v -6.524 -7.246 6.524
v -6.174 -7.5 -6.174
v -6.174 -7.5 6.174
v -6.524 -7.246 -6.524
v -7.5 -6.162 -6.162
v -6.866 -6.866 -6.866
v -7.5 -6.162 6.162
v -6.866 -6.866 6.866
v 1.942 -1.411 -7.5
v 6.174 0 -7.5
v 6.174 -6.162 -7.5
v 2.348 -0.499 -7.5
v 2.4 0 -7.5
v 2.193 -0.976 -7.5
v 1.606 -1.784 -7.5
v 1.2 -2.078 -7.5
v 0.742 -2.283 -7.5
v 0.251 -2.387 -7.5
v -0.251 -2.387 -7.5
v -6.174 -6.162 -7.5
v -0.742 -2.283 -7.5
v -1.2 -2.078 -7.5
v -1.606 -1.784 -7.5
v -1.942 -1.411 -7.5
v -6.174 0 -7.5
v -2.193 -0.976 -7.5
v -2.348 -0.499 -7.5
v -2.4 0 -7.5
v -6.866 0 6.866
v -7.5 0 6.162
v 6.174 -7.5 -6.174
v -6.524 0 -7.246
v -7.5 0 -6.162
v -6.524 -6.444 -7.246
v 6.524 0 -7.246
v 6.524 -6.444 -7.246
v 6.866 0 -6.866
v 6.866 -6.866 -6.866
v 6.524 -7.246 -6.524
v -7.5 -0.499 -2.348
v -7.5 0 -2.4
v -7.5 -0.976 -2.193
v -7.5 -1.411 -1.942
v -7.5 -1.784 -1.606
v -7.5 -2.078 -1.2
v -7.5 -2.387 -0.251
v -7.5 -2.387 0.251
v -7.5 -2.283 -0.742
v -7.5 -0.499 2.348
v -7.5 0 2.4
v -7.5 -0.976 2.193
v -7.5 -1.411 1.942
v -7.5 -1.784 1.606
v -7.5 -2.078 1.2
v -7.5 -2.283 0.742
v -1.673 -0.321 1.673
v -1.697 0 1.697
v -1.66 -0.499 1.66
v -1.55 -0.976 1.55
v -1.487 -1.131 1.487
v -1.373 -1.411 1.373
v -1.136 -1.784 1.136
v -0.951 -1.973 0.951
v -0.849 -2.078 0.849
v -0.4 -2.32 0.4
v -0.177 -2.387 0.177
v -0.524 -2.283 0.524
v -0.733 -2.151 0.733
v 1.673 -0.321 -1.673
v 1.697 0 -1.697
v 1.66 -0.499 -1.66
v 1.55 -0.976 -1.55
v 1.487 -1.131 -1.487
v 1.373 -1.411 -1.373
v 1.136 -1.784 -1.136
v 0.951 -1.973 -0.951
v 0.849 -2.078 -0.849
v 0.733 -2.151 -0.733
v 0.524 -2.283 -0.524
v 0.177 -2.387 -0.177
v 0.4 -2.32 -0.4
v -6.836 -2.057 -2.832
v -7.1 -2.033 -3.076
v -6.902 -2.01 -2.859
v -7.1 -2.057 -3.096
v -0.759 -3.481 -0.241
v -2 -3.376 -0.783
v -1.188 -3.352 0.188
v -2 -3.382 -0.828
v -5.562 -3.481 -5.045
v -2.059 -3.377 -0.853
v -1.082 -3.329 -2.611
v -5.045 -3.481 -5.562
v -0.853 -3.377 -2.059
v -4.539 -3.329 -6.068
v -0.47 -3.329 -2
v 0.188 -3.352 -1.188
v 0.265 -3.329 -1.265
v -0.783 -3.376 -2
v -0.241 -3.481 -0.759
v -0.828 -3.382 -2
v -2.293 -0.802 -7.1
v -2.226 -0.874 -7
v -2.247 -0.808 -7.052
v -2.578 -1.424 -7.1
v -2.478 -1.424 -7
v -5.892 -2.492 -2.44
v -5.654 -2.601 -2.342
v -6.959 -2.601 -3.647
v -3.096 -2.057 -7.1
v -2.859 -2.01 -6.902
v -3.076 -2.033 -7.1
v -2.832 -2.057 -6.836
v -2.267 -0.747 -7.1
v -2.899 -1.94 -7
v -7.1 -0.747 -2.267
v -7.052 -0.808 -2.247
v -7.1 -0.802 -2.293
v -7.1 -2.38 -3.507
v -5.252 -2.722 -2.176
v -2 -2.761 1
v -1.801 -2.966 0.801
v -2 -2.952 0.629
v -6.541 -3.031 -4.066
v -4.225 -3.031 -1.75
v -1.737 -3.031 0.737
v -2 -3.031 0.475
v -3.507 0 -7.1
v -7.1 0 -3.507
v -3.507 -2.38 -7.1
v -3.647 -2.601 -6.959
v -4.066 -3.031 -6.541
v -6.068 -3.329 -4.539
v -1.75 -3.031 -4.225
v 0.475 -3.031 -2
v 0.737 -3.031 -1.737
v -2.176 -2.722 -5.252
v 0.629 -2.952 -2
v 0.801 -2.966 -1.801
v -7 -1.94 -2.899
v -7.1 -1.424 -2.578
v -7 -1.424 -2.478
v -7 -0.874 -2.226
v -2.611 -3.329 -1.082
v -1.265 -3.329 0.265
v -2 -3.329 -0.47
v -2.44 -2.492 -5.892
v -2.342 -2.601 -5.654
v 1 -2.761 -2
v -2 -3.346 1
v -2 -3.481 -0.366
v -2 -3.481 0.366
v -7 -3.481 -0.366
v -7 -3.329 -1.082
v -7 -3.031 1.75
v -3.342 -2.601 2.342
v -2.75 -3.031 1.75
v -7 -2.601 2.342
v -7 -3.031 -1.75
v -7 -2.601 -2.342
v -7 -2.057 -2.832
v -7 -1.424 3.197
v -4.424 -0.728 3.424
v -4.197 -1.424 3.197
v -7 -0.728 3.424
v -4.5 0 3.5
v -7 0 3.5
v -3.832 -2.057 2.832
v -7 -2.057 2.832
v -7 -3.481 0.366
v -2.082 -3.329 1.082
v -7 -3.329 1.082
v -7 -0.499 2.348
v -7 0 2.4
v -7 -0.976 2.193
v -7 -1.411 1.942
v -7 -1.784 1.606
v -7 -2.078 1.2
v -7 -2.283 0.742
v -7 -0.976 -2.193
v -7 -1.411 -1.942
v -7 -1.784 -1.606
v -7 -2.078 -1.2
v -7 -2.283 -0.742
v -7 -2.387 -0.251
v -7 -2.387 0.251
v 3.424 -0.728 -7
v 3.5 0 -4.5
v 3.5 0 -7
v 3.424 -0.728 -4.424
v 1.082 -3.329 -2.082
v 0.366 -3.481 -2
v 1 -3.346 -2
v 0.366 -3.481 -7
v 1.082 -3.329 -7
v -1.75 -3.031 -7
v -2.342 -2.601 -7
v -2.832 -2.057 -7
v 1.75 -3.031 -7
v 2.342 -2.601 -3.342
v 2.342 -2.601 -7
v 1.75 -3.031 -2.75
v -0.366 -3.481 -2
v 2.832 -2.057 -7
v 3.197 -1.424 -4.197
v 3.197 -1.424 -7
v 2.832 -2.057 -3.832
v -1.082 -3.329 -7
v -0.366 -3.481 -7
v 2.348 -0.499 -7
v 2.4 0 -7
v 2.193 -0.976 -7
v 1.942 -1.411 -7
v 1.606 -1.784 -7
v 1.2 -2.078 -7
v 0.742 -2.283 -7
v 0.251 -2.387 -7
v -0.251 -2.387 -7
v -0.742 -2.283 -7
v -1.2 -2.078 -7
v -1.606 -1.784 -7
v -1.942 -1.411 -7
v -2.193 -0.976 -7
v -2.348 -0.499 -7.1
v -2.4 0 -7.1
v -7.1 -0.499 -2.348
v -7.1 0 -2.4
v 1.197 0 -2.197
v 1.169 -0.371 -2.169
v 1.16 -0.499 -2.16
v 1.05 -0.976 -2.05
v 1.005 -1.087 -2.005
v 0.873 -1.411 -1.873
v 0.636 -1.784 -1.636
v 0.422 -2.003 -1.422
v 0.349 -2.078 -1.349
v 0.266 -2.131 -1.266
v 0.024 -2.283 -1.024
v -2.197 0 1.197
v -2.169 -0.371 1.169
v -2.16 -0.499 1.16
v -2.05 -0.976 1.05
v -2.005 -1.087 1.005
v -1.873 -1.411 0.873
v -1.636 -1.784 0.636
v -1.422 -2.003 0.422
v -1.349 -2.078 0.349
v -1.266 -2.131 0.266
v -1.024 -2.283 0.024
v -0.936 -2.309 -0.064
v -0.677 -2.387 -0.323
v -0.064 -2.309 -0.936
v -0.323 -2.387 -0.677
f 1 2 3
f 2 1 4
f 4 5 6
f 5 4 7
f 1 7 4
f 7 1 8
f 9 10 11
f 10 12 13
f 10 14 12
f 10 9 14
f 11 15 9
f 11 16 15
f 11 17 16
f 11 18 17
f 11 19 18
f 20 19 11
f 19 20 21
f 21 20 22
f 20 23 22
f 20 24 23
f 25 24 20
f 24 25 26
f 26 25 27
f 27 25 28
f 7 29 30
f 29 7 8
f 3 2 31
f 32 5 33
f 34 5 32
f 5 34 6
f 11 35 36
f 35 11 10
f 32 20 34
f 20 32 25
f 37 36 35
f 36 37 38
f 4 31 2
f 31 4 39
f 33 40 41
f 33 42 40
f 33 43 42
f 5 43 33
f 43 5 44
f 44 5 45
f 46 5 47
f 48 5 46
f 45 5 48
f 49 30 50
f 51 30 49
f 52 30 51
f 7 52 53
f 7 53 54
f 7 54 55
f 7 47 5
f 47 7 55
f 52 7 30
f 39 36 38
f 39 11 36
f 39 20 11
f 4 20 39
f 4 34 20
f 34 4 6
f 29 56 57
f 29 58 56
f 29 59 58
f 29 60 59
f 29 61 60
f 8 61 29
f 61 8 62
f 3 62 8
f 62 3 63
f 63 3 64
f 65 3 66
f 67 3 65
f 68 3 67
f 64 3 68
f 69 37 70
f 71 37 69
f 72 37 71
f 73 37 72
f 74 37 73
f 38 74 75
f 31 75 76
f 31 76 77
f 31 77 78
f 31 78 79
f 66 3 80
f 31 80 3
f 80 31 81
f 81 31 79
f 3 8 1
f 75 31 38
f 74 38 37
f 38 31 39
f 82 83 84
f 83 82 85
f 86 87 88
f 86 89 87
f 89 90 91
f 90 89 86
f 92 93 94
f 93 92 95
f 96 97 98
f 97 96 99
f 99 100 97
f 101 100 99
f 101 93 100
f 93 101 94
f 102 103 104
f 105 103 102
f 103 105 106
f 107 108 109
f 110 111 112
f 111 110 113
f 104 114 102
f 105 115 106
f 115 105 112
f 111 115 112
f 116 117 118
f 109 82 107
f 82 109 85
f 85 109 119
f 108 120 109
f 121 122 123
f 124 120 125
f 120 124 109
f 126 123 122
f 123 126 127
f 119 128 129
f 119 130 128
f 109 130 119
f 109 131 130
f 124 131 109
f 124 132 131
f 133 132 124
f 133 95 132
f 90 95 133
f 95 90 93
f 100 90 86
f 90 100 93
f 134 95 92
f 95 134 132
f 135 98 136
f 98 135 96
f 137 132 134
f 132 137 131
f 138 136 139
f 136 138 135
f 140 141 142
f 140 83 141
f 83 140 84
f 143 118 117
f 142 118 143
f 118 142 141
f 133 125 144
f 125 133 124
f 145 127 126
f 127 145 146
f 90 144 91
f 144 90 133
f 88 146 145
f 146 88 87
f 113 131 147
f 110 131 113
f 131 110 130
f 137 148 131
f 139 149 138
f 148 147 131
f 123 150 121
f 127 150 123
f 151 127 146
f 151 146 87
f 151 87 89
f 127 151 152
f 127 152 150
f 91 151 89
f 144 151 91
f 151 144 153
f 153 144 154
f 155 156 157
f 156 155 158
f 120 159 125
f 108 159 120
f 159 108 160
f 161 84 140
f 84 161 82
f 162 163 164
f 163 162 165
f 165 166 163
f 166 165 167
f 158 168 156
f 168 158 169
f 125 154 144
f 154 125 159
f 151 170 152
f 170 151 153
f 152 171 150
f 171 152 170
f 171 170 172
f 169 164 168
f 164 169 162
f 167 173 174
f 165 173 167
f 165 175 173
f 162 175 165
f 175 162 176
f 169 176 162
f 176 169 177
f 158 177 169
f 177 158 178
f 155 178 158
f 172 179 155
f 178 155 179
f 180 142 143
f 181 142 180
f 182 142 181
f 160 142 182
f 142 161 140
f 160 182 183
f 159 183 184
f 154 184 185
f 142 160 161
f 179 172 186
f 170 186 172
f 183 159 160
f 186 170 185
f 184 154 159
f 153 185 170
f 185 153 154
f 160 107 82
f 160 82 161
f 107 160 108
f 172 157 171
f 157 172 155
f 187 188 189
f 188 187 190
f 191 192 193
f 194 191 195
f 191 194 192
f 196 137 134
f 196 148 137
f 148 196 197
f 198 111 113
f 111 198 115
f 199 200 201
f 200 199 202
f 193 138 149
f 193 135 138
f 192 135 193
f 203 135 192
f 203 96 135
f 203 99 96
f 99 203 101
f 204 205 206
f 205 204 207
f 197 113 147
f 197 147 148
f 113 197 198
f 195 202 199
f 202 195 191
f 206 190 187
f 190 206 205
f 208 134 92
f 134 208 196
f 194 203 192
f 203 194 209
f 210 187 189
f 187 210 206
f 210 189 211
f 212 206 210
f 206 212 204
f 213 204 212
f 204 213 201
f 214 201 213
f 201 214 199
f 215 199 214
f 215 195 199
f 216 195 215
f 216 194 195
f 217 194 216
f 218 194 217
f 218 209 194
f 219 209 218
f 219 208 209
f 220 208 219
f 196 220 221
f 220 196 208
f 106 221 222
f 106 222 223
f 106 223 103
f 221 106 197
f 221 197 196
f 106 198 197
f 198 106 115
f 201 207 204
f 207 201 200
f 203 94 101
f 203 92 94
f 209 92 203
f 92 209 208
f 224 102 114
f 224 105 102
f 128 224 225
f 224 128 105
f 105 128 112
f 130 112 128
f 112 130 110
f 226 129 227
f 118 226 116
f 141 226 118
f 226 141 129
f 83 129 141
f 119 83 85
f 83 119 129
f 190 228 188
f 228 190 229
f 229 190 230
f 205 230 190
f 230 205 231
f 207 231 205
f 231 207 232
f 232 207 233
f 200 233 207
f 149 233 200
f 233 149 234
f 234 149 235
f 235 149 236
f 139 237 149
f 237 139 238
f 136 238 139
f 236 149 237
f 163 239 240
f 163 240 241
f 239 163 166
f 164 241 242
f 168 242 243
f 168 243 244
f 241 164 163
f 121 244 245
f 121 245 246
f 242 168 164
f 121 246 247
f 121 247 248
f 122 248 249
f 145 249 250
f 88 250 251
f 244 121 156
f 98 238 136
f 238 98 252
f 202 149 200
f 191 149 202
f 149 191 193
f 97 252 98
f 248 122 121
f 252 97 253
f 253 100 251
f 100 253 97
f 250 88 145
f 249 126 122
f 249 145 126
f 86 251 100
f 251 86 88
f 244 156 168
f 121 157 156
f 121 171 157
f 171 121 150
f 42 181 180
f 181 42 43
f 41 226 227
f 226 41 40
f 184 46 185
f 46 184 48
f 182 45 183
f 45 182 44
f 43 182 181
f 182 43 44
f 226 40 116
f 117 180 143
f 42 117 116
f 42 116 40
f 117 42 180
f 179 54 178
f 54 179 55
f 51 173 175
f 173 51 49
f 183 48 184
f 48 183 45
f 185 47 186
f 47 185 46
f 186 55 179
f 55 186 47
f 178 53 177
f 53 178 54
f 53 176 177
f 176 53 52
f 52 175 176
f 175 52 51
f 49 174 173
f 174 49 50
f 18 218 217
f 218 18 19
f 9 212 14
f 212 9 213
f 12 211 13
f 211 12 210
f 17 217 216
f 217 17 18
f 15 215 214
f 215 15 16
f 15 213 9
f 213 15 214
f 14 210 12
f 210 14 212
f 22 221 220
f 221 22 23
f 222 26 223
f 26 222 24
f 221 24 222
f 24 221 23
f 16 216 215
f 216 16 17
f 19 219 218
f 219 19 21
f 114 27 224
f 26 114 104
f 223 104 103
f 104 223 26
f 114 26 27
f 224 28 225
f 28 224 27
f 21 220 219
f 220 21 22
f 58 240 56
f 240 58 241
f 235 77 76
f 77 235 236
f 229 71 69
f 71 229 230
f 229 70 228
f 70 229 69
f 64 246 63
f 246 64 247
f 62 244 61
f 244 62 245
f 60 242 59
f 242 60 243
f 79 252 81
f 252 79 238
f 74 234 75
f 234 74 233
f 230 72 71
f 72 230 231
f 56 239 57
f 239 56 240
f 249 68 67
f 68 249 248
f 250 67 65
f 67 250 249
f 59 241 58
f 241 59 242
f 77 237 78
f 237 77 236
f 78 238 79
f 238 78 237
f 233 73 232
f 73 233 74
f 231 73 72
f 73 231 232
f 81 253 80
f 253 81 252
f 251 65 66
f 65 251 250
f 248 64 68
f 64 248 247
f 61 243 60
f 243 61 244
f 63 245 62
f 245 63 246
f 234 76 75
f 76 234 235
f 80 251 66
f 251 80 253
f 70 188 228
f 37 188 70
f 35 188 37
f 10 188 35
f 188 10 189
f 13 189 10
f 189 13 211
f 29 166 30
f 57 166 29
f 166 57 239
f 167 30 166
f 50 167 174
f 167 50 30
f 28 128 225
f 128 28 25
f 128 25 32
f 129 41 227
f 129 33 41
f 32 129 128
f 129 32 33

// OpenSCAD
// file: base file2.scad
//**
//
//@author Michael peterson
//
//@section DESCRIPTION
//
//This base file tries to replicate the actual block by creating a 3 part block
//

//@section CHANGES
// 
//It is noted that the Blox edges are angled not round. Made blox be a cube from cyinder.
// 2/27/20: Noted that file corner()  would need a different core() then this.
// Added editing capabilities to many components to facilitate this.
//@section TEST
//
//
//@section TEST RESULTS
// 
//From test of ball and socket
//Hole size .18in needs to be .205 atleast; peg is .2
//Blox size .598in/~1.5cm compared to the .582in of the blox's un embelished side
//@section IMPROVEMENTS
//
// Add the texturing to the faces and the corner extensions.
//
//@section ALTERNITIVE
//this is the atlernitive.
  



//** 
//@section DEFINES
// 
//Here are the defines used trought the project.
//fn =30 makes the cylinders for the holes be quite round.
//base defines a set size of each BLox face.
$fn =30;
base =15;// enlarged from 5, to allow corect  printing size
Peg =2.5;
//**
//@section DESCRIPTION
//
//This function creates a cylinder, and colors it blue. This is the base used for all future pegs and holes in Blox.
//
module peghole(){
    color("Blue")cylinder (18, 2.5, 2.5, true);
}

module Editpeghole(x){
    color("Blue")
    cylinder(x,2.5,2.5, true);
}
//**
//@section DESCRIPTION
//
// A cylinder for use as bulding block for interior rubber tube
// 1 mm shorter then blox to alow cover over end of ruber by blox
//

module rubber(){
    color("Red")
    cylinder (14, 2.8, 2.8, true);
}
//**
//@section DESCRIPTION
//
// rubber() with a variable legth.
//
module Editrubber(x){
    color("Red")
    cylinder (x, 2.8, 2.8, true);
}

//**
//@section DESCRIPTION
//
//This function makes a hollow tube
//  x long
//  y inner radius
//  z wall width
//
module Editpipe(x,y,z){
    difference(){
cylinder(x, y+z, y+z, true);
cylinder(x+1, y, y, true);
    }
}


//**
//@section DESCRIPTION
//
// Cylinder for creating the void for rubber to sit an and allow peg movement
// 1 shorter then blox width to alow cover over ruber and centering of ruber 
//
module spacer(){
cylinder(14, 3.5,3.5, true);
}
//**
//@section DESCRIPTION
//
// Cylinder for creating the void for rubber to sit and allow peg movement
//  removed 1.2 shortening, hardcode per use
//
module cover(x){
translate([x+.1,0,0])cube([1,15,15], true);
}
module sides(){
    y = 7.5;
    cover(y);

rotate([0,90,0])cover(y);
rotate([0,180,0])cover(y);
rotate([0,-90,0])cover(y);
rotate([0,0,-90])cover(y);
rotate([0,0,90])cover(y);
}


module Editspacer(x){
cylinder(x, 3.5,3.5, true);
}

//**
//@section DESCRIPTION
//
// Spacer on the 3 axis
//
module give(){
    spacer();
rotate ([90, 0, 0]) 
    spacer();
rotate ([0, 90, 0]) spacer();
}
//**
//@section DESCRIPTION
//
// A 2 ended rubber tube for peg insertion. Not al the way hollow to allow conetion between axis.
//
module tube() {
difference(){
rubber();
color("Purple")translate ([0, 0, 2]) peg();
    color("Purple")translate([0,0,-7.5]) peg();
}
}

//@section DESCRIPTION
//
// a cylinder the width of peg to allow Edittube() to be at all legths
module tubecenter(x){
 cylinder (x, 2.4, 2.4, true);
    //true added to open bottom (-Z)of tube, 
}   

module Edittube(x) {
difference(){
Editrubber(x);
    tubecenter(x+.5);
//.5 added to remove tip (+Z) of tube being covered by layer casuse buy tubecenter being trued
}
}

//**
//@section DESCRIPTION
//
// A test peg used for possible later pegged Blox.
//
module peg(){
    cylinder (6, 2.4, 2.4);
}

//**
//@section DESCRIPTION
//
// A peg with a variable legth.
//

module Editpeg(x) {
    cylinder(x, 2.4, 2.4, true);
}

//**
//@section DESCRIPTION
//
// A cylinder that gives the proper edges to the Blox cube.

module edge(){
cylinder (base, 9.75, 9.75, true);
}


//**
//@section DESCRIPTION
//
//This creates the Bloxes cube shape and rounded edges.

module block(){
    intersection(){
edge();
rotate([90,0,0]) edge();
rotate([0, 90, 0]) edge();
}
}


module core(){
    tube();
rotate ([90, 0, 0]) tube();
rotate ([0, 90, 0]) tube();
}
   // core();
//**
//@section DESCRIPTION
//
//The axial holes are added to the block giving it the iconic Blox look. This is the base all other parts stem from.
module blox(){
difference(){ 
block();
   peghole();
rotate ([90, 0, 0]) peghole();
rotate ([0, 90, 0]) peghole();
    give();
}
}

module half(){
    difference(){
        blox();
        rotate([-90,0,0])translate([0, 0,4]) cube([16, 16, 8], true);
    
    }
}
module whole(){
    half();
    rotate([0,0,180])half();
    //core();
}
// set up a vies of object

// souced label funtion from user Parkinbot at http://forum.openscad.org/Display-label-options-td25514.html




module label (text = "label", textsize = 3, pos=[0,0,0], dpos=[10,0,10],
linesize = .2, length =20, anglexyz=[0,45,90])
{
  p1 = pos + dpos;
  //line(pos, p1, linesize);
  translate(p1)rotate([90,0,$vpr[2]])text(text, size = textsize);
}

module labeledBlox(){
label("Case Halfs", pos = [5, 10, 20]);
label("Assembled", pos = [-30, 10, 20]);
label("With Insert", pos = [40, 10, -15]);
label("Insert", pos = [5, 10, -38]);


translate([base, 0, -.5* base]){
core();
half();
}
translate([.5*-base, 0, -.5* base])rotate([0, 0, 90]){
core();
half();
}
translate([-2*base, 0, -.5* base]){whole(); core();}
translate([base, 0, base]) half();
translate([.5*-base, 0, base]) rotate([0, 0, 90]) half();
translate([-2*base, 0, base]) whole();

translate([.5*-base, 0, 2*-base]) core();
}
module peggedHalf(){
translate([.35*base,0, .35*base])cube([1,3,1], true);
translate([.35*-base,0, .35*-base])cube([1,3,1], true);
difference(){
half();
translate([.35*-base,0, .35*base])cube([1.5,3.5,1.5], true); // at 1.1 and 3.1 hole too small when printed
translate([.35*base,0, .35*-base])cube([1.5,3.5,1.5], true);
}
}
//peggedHalf();
//labeledBlox();
//peghole();
//rubber();
// main file
//**
//@author Michael Peterson
//
//@section DESCRIPTION
//
// This piece is based of of the unholed block instead of the Blox. It functions as a Blox in the shape of a trianglar pyrimid. It has holes only on the square surfaces, allowing it to conect to other blox on the flat. 
// In theory...
// It is tan integral basis for many of the custom Blox designs.
//
//@section TEST
// 
//This piece has been untested and should be tested after the main Bloxs has been dimensioned properly. If this fails many peices need to be changed.
//
//@section IMPROVEMENTS
//
//Unsure how the expanded corners on a normal blox would work agains the angled edge. Replicate those features and surface paterns on the face.

use <base file2.scad>;
module triangleblock(){
    difference(){
        block();
        translate([-9,-9,9])rotate([0,45,0])cube([24,18,12]);
}
}

module corner(){
  
    difference(){triangleblock();
       trispacer();
     rotate([0,90,0])   translate([0,0,-6]) Editpeg(5);
translate([0,0,-6]) Editpeg(5);   
rotate([0,45,0]) translate([0,0,1])Editpeg(7);   
}
}
module cornerhalf(){
difference(){
corner();
translate([ -10, 0, -10]) cube([20,10,20]);
}
}
//translate([15,0,0]) whole();
//corner();
module tritube(){
    rotate([0,45,0])
translate([0,0,-3.5]) Edittube(8);
rotate([0,90,0])
translate([0,0,-4.5])Edittube(5);
translate([0,0,-4.5])Edittube(5);   
}


module spacers(){
    rotate([0,45,0])
translate([0,0,-3.5]) Editspacer(8);
rotate([0,90,0])
translate([0,0,-4.5])Editspacer(5);
translate([0,0,-4.5])Editspacer(5);   
}
module trispacer(){
difference(){
    spacers();
    sides();
     translate([-9,-9,8])rotate([0,45,0])cube([24,18,12]);
}
}
module tricore(){
 difference(){
    tritube();
     rotate([0,45,0])
translate([0,0,-3.5]) Editpeg(9);
  sides();
    translate([-9,-9,8])rotate([0,45,0])cube([24,18,12]) ;
}
}
//tricore();
//tube();
cornerhalf();
